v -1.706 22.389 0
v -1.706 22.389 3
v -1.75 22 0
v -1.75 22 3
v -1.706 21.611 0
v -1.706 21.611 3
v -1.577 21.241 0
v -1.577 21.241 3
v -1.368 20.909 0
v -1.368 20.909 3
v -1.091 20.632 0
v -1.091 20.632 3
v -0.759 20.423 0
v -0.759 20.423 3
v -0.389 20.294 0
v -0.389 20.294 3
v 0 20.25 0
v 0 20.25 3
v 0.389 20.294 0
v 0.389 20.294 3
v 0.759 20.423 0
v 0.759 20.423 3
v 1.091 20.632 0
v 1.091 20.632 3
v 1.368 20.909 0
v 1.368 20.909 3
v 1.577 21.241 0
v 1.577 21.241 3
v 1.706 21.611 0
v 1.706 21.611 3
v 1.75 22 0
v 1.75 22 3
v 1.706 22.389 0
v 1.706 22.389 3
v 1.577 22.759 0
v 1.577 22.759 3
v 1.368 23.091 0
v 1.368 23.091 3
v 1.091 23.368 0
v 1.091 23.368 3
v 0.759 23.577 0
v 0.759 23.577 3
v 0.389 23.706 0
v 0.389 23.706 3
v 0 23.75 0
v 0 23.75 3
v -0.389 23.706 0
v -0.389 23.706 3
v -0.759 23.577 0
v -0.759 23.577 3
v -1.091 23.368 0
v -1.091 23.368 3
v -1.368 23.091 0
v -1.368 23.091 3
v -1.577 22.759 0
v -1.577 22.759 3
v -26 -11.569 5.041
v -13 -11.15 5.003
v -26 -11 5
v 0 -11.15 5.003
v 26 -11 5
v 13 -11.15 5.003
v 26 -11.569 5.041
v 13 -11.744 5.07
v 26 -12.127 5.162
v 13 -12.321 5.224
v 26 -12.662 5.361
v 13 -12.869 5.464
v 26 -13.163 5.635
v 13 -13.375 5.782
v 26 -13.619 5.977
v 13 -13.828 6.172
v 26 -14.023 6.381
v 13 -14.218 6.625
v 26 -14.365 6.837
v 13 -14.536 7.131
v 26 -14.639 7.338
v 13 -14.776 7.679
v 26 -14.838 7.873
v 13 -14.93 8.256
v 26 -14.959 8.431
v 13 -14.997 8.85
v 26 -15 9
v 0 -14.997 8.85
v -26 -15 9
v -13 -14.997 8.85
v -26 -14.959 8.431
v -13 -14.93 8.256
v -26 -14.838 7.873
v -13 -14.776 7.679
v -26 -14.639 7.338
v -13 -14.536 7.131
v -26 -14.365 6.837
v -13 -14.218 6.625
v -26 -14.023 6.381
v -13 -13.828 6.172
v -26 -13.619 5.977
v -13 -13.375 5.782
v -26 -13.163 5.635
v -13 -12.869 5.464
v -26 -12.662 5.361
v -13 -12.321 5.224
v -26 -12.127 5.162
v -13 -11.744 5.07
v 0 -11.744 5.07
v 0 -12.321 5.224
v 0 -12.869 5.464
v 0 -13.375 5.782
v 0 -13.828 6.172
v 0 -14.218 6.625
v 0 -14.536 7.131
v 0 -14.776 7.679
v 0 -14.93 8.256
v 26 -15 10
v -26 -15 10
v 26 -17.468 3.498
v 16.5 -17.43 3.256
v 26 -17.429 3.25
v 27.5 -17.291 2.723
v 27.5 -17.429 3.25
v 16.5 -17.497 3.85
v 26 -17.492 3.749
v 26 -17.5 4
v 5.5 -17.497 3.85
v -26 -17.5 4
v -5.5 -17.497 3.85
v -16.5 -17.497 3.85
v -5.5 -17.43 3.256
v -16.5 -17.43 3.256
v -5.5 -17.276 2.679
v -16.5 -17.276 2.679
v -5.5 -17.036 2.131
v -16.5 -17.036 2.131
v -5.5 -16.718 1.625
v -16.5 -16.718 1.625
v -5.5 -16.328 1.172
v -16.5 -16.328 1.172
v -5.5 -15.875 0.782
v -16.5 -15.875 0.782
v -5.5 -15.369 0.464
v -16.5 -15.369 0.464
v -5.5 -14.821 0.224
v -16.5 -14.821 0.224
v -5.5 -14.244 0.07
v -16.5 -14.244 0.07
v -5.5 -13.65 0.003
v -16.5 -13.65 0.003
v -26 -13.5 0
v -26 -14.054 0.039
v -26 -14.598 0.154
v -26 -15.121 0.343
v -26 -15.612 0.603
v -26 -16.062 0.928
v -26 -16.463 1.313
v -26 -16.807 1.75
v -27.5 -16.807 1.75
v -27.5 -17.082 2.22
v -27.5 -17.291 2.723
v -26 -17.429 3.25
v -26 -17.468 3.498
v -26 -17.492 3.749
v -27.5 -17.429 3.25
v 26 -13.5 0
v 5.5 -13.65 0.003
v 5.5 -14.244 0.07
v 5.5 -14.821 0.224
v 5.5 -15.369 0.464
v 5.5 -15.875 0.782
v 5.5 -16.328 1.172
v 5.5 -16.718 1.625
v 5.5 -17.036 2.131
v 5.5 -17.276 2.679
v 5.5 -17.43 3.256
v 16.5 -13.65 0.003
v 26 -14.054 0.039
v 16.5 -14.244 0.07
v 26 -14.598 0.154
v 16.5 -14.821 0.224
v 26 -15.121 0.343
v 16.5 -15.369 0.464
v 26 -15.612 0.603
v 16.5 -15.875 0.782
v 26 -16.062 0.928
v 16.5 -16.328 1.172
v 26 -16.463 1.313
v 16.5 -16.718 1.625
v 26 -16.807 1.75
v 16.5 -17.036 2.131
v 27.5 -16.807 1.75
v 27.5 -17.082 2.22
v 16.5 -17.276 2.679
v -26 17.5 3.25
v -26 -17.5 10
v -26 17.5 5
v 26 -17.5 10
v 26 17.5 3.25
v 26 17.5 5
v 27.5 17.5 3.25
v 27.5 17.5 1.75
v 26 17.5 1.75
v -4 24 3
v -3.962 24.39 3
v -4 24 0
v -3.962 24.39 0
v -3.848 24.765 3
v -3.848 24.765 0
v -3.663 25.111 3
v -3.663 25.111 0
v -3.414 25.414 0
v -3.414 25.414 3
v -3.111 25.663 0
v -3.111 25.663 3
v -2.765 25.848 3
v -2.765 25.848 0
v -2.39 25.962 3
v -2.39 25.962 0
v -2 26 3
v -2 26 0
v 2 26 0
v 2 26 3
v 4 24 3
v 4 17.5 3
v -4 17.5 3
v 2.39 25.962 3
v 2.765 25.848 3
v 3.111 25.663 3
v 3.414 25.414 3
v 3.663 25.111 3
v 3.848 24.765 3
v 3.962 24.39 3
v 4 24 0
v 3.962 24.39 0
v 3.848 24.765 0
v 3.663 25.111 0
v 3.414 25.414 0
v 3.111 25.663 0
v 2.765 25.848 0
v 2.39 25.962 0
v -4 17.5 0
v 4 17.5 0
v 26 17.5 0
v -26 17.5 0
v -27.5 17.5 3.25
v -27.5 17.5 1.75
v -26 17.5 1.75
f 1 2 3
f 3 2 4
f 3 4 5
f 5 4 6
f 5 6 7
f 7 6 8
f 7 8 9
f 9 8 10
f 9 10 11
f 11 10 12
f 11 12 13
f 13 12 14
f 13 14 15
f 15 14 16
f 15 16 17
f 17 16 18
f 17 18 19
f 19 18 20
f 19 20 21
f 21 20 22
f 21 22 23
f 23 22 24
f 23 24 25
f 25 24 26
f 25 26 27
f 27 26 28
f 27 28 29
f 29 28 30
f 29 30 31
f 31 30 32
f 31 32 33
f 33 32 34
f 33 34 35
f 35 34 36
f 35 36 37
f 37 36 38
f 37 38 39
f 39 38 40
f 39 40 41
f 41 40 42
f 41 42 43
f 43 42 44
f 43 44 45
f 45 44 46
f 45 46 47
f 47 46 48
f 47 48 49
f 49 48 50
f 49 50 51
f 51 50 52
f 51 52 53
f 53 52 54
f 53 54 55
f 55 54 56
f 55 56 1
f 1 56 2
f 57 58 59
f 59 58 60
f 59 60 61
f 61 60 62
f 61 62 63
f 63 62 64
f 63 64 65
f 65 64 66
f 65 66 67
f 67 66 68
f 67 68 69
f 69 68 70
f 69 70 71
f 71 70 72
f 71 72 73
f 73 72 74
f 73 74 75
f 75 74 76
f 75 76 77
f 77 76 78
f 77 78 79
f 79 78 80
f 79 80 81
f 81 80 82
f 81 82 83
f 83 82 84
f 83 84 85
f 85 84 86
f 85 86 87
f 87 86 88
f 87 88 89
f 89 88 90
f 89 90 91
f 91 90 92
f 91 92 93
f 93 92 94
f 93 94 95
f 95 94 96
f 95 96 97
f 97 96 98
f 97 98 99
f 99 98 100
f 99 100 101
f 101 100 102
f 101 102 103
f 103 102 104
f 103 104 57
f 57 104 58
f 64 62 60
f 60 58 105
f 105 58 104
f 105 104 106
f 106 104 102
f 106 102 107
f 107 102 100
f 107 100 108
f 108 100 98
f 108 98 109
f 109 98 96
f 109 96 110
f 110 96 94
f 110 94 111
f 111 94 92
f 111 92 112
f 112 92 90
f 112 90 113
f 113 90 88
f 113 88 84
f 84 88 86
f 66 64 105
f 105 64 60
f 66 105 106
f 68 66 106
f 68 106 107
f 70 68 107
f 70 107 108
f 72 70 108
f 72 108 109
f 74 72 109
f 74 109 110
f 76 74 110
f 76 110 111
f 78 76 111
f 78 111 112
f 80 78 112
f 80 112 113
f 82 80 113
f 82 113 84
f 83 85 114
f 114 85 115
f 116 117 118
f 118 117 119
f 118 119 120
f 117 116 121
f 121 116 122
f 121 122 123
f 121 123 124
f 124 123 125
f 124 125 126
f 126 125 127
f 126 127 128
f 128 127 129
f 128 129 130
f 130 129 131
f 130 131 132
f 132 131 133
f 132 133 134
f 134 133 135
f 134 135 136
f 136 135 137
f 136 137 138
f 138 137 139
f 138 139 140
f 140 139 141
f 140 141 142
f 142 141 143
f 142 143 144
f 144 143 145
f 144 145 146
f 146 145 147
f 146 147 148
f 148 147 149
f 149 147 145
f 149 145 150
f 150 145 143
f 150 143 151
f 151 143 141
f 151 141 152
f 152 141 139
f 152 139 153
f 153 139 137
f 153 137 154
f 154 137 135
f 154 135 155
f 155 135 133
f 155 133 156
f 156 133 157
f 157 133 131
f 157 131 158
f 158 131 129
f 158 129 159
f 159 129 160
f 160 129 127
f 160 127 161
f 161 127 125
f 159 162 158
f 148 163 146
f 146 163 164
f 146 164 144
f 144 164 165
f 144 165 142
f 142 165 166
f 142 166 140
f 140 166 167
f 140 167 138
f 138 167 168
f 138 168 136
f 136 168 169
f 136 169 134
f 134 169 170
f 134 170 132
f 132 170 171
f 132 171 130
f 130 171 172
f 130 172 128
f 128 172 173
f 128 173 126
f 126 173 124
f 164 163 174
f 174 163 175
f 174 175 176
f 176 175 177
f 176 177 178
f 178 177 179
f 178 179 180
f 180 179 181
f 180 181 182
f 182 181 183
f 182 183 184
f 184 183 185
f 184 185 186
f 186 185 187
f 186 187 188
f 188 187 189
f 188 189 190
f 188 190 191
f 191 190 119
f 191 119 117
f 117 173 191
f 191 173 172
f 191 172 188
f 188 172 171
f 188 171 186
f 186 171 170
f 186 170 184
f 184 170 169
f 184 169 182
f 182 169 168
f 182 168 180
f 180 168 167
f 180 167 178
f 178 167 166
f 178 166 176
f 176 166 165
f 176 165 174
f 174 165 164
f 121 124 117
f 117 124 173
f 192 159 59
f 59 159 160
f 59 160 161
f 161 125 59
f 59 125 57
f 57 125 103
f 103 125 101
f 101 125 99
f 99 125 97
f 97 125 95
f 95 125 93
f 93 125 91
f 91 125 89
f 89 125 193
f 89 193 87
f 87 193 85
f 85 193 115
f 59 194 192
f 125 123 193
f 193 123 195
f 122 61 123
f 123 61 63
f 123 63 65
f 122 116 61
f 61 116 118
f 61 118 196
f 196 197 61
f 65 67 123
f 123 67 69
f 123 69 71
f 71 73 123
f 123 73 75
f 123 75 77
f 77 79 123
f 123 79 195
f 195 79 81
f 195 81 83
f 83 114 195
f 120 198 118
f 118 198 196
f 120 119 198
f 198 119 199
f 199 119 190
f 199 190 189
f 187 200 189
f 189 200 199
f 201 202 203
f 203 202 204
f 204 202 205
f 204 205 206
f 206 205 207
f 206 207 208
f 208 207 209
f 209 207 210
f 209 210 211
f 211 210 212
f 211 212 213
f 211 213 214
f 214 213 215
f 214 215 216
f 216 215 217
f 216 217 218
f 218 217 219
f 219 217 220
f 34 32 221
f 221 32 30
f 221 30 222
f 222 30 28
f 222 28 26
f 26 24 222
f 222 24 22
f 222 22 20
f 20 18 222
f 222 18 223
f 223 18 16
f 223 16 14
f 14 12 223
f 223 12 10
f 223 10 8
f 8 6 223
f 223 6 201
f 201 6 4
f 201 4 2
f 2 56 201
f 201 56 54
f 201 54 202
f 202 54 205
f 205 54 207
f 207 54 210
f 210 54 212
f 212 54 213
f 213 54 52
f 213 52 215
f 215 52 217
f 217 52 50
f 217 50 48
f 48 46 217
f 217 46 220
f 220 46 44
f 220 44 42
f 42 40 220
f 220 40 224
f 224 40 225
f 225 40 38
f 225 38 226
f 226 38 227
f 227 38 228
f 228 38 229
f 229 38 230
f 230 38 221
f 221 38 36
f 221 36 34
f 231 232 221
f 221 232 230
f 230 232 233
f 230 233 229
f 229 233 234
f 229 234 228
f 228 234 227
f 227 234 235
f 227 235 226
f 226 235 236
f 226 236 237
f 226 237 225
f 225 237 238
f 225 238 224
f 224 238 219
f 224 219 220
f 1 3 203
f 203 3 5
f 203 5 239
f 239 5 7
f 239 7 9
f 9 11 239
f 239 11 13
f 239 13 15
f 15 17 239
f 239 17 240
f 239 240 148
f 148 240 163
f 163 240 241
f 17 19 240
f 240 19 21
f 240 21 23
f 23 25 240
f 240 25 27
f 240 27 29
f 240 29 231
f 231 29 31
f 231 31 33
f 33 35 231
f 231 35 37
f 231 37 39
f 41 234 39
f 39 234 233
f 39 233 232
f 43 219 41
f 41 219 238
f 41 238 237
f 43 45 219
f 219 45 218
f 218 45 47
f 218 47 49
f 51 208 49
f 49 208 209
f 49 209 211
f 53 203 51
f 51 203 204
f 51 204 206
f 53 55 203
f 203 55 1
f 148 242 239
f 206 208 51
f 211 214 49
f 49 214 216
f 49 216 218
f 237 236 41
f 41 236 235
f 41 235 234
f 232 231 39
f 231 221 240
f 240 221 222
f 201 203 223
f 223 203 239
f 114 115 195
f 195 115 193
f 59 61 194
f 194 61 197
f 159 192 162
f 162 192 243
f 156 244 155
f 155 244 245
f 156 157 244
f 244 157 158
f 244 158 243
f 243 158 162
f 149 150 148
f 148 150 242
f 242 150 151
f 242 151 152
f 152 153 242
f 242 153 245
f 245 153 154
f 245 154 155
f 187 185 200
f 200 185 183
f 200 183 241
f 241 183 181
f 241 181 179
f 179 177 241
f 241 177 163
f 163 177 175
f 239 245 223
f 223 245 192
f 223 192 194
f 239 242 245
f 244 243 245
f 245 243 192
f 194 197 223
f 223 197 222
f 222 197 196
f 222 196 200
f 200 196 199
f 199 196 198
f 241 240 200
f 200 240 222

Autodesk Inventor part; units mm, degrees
ref_plane "YZ Plane" through (0, 0, 0) normal (1, 0, 0) x (0, 1, 0)
ref_plane "XZ Plane" through (0, 0, 0) normal (0, 1, 0) x (-1, 0, 0)
ref_plane "XY Plane" through (0, 0, 0) normal (0, 0, 1) x (1, 0, 0)
sketch "Esquisse2" plane through (0, 0, 0) normal (0, 0, 1) x (1, 0, 0)
  line L0 (-26, -17.5) -> (26, -17.5)
  line L1 (26, -17.5) -> (26, 17.5)
  line L2 (26, 17.5) -> (-26, 17.5)
  line L3 (-26, 17.5) -> (-26, -17.5)
  line L4 (-26, -17.5) -> (26, 17.5) construction
  line L5 (26, -17.5) -> (-26, 17.5) construction
  point P0 (0, 0)
  dimension "d0" = 52
  dimension "d1" = 35
extrude "Extrusion1" add sketch "Esquisse2" along normal blind 5
sketch "Esquisse3" plane through (26, -17.5, 0) normal (1, 0, 0) x (0, 0, -1)
  line L0 (0, 0) -> (0, 35) construction
  line L1 (0, 35) -> (-5, 35) construction
  line L2 (-5, 0) -> (-5, 35) construction
  line L3 (0, 0) -> (-5, 0) construction
  line L4 (0, 17.5) -> (-2.5, 17.5) construction
  line L5 (-1.75, 0) -> (-3.25, 0)
  line L6 (-3.25, 0) -> (-3.25, 35)
  line L7 (-3.25, 35) -> (-1.75, 35)
  line L8 (-1.75, 35) -> (-1.75, 0)
  line L9 (-1.75, 0) -> (-3.25, 35) construction
  line L10 (-3.25, 0) -> (-1.75, 35) construction
  dimension "d4" = 2.5
  dimension "d5" = 1.5
extrude "Extrusion2" add sketch "Esquisse3" along normal blind 1.5
mirror "Symétrie1" about plane through (0, 0, 0) normal (1, 0, 0) of "Extrusion2"
sketch "Esquisse4" plane through (0, 0, 5) normal (0, 0, 1) x (1, 0, 0)
  line L0 (-26, 17.5) -> (-26, -17.5) construction
  line L1 (-26, -17.5) -> (26, -17.5) construction
  line L2 (26, -17.5) -> (26, 17.5) construction
  line L3 (26, 17.5) -> (-26, 17.5) construction
  line L4 (-26, -17.5) -> (26, -17.5)
  line L5 (26, -17.5) -> (26, -15)
  line L6 (26, -15) -> (-26, -15)
  line L7 (-26, -15) -> (-26, -17.5)
  point P0 (0, 0)
  dimension "d8" = 2.5
extrude "Extrusion3" add sketch "Esquisse4" along normal blind 5
sketch "Esquisse5" plane through (-26, 17.5, 0) normal (0, 1, 0) x (1, 0, 0)
  line L0 (52, 0) -> (0, 0) construction
  line L1 (0, 0) -> (0, -1.75) construction
  line L2 (0, -1.75) -> (-1.5, -1.75) construction
  line L3 (-1.5, -1.75) -> (-1.5, -3.25) construction
  line L4 (0, -3.25) -> (-1.5, -3.25) construction
  line L5 (0, -3.25) -> (0, -5) construction
  line L6 (52, -5) -> (0, -5) construction
  line L7 (52, -3.25) -> (52, -5) construction
  line L8 (52, -3.25) -> (53.5, -3.25) construction
  line L9 (53.5, -1.75) -> (53.5, -3.25) construction
  line L10 (52, -1.75) -> (53.5, -1.75) construction
  line L11 (52, 0) -> (52, -1.75) construction
  line L12 (26, 2) -> (26, -12) construction
  line L13 (-12.5, 0) -> (64.5, 0) construction
  line L14 (26, 0) -> (30, 0) construction
  line L15 (30, 0) -> (22, 0)
  line L16 (22, 0) -> (22, -3)
  line L17 (22, -3) -> (30, -3)
  line L18 (30, -3) -> (30, 0)
  dimension "d11" = 4
  dimension "d12" = 8
  dimension "d13" = 3
extrude "Extrusion4" add sketch "Esquisse5" along normal blind 8.5
fillet "Congé1" radius 2 2 edges at (4, 26, 1.5) (-4, 26, 1.5)
fillet "Congé1" radius 4 2 edges at (0, -17.5, 0) (0, -15, 5)
sketch "Esquisse6" plane through (-4, 17.5, 3) normal (0, 0, 1) x (1, 0, 0)
  line L0 (30, -28.5) -> (-22, -28.5) construction
  line L1 (30, -28.5) -> (30, 0) construction
  line L2 (30, 0) -> (-22, 0) construction
  line L3 (-22, 0) -> (-22, -28.5) construction
  arc A0 (2, 8.5) -> (0, 6.5) centre (2, 6.5) ccw construction
  line L4 (0, 0) -> (0, 6.5) construction
  line L5 (8, 0) -> (0, 0) construction
  line L6 (8, 0) -> (8, 6.5) construction
  arc A1 (8, 6.5) -> (6, 8.5) centre (6, 6.5) ccw construction
  line L7 (2, 8.5) -> (6, 8.5) construction
  line L8 (4, 0) -> (4, 4.5) construction
  circle A2 centre (4, 4.5) radius 1.75
  point P0 (4, -17.5)
  dimension "d18" = 4.5
  dimension "d19" = 3.5
extrude "Extrusion5" cut sketch "Esquisse6" against normal through all
properties part number "_Impression 3D"
